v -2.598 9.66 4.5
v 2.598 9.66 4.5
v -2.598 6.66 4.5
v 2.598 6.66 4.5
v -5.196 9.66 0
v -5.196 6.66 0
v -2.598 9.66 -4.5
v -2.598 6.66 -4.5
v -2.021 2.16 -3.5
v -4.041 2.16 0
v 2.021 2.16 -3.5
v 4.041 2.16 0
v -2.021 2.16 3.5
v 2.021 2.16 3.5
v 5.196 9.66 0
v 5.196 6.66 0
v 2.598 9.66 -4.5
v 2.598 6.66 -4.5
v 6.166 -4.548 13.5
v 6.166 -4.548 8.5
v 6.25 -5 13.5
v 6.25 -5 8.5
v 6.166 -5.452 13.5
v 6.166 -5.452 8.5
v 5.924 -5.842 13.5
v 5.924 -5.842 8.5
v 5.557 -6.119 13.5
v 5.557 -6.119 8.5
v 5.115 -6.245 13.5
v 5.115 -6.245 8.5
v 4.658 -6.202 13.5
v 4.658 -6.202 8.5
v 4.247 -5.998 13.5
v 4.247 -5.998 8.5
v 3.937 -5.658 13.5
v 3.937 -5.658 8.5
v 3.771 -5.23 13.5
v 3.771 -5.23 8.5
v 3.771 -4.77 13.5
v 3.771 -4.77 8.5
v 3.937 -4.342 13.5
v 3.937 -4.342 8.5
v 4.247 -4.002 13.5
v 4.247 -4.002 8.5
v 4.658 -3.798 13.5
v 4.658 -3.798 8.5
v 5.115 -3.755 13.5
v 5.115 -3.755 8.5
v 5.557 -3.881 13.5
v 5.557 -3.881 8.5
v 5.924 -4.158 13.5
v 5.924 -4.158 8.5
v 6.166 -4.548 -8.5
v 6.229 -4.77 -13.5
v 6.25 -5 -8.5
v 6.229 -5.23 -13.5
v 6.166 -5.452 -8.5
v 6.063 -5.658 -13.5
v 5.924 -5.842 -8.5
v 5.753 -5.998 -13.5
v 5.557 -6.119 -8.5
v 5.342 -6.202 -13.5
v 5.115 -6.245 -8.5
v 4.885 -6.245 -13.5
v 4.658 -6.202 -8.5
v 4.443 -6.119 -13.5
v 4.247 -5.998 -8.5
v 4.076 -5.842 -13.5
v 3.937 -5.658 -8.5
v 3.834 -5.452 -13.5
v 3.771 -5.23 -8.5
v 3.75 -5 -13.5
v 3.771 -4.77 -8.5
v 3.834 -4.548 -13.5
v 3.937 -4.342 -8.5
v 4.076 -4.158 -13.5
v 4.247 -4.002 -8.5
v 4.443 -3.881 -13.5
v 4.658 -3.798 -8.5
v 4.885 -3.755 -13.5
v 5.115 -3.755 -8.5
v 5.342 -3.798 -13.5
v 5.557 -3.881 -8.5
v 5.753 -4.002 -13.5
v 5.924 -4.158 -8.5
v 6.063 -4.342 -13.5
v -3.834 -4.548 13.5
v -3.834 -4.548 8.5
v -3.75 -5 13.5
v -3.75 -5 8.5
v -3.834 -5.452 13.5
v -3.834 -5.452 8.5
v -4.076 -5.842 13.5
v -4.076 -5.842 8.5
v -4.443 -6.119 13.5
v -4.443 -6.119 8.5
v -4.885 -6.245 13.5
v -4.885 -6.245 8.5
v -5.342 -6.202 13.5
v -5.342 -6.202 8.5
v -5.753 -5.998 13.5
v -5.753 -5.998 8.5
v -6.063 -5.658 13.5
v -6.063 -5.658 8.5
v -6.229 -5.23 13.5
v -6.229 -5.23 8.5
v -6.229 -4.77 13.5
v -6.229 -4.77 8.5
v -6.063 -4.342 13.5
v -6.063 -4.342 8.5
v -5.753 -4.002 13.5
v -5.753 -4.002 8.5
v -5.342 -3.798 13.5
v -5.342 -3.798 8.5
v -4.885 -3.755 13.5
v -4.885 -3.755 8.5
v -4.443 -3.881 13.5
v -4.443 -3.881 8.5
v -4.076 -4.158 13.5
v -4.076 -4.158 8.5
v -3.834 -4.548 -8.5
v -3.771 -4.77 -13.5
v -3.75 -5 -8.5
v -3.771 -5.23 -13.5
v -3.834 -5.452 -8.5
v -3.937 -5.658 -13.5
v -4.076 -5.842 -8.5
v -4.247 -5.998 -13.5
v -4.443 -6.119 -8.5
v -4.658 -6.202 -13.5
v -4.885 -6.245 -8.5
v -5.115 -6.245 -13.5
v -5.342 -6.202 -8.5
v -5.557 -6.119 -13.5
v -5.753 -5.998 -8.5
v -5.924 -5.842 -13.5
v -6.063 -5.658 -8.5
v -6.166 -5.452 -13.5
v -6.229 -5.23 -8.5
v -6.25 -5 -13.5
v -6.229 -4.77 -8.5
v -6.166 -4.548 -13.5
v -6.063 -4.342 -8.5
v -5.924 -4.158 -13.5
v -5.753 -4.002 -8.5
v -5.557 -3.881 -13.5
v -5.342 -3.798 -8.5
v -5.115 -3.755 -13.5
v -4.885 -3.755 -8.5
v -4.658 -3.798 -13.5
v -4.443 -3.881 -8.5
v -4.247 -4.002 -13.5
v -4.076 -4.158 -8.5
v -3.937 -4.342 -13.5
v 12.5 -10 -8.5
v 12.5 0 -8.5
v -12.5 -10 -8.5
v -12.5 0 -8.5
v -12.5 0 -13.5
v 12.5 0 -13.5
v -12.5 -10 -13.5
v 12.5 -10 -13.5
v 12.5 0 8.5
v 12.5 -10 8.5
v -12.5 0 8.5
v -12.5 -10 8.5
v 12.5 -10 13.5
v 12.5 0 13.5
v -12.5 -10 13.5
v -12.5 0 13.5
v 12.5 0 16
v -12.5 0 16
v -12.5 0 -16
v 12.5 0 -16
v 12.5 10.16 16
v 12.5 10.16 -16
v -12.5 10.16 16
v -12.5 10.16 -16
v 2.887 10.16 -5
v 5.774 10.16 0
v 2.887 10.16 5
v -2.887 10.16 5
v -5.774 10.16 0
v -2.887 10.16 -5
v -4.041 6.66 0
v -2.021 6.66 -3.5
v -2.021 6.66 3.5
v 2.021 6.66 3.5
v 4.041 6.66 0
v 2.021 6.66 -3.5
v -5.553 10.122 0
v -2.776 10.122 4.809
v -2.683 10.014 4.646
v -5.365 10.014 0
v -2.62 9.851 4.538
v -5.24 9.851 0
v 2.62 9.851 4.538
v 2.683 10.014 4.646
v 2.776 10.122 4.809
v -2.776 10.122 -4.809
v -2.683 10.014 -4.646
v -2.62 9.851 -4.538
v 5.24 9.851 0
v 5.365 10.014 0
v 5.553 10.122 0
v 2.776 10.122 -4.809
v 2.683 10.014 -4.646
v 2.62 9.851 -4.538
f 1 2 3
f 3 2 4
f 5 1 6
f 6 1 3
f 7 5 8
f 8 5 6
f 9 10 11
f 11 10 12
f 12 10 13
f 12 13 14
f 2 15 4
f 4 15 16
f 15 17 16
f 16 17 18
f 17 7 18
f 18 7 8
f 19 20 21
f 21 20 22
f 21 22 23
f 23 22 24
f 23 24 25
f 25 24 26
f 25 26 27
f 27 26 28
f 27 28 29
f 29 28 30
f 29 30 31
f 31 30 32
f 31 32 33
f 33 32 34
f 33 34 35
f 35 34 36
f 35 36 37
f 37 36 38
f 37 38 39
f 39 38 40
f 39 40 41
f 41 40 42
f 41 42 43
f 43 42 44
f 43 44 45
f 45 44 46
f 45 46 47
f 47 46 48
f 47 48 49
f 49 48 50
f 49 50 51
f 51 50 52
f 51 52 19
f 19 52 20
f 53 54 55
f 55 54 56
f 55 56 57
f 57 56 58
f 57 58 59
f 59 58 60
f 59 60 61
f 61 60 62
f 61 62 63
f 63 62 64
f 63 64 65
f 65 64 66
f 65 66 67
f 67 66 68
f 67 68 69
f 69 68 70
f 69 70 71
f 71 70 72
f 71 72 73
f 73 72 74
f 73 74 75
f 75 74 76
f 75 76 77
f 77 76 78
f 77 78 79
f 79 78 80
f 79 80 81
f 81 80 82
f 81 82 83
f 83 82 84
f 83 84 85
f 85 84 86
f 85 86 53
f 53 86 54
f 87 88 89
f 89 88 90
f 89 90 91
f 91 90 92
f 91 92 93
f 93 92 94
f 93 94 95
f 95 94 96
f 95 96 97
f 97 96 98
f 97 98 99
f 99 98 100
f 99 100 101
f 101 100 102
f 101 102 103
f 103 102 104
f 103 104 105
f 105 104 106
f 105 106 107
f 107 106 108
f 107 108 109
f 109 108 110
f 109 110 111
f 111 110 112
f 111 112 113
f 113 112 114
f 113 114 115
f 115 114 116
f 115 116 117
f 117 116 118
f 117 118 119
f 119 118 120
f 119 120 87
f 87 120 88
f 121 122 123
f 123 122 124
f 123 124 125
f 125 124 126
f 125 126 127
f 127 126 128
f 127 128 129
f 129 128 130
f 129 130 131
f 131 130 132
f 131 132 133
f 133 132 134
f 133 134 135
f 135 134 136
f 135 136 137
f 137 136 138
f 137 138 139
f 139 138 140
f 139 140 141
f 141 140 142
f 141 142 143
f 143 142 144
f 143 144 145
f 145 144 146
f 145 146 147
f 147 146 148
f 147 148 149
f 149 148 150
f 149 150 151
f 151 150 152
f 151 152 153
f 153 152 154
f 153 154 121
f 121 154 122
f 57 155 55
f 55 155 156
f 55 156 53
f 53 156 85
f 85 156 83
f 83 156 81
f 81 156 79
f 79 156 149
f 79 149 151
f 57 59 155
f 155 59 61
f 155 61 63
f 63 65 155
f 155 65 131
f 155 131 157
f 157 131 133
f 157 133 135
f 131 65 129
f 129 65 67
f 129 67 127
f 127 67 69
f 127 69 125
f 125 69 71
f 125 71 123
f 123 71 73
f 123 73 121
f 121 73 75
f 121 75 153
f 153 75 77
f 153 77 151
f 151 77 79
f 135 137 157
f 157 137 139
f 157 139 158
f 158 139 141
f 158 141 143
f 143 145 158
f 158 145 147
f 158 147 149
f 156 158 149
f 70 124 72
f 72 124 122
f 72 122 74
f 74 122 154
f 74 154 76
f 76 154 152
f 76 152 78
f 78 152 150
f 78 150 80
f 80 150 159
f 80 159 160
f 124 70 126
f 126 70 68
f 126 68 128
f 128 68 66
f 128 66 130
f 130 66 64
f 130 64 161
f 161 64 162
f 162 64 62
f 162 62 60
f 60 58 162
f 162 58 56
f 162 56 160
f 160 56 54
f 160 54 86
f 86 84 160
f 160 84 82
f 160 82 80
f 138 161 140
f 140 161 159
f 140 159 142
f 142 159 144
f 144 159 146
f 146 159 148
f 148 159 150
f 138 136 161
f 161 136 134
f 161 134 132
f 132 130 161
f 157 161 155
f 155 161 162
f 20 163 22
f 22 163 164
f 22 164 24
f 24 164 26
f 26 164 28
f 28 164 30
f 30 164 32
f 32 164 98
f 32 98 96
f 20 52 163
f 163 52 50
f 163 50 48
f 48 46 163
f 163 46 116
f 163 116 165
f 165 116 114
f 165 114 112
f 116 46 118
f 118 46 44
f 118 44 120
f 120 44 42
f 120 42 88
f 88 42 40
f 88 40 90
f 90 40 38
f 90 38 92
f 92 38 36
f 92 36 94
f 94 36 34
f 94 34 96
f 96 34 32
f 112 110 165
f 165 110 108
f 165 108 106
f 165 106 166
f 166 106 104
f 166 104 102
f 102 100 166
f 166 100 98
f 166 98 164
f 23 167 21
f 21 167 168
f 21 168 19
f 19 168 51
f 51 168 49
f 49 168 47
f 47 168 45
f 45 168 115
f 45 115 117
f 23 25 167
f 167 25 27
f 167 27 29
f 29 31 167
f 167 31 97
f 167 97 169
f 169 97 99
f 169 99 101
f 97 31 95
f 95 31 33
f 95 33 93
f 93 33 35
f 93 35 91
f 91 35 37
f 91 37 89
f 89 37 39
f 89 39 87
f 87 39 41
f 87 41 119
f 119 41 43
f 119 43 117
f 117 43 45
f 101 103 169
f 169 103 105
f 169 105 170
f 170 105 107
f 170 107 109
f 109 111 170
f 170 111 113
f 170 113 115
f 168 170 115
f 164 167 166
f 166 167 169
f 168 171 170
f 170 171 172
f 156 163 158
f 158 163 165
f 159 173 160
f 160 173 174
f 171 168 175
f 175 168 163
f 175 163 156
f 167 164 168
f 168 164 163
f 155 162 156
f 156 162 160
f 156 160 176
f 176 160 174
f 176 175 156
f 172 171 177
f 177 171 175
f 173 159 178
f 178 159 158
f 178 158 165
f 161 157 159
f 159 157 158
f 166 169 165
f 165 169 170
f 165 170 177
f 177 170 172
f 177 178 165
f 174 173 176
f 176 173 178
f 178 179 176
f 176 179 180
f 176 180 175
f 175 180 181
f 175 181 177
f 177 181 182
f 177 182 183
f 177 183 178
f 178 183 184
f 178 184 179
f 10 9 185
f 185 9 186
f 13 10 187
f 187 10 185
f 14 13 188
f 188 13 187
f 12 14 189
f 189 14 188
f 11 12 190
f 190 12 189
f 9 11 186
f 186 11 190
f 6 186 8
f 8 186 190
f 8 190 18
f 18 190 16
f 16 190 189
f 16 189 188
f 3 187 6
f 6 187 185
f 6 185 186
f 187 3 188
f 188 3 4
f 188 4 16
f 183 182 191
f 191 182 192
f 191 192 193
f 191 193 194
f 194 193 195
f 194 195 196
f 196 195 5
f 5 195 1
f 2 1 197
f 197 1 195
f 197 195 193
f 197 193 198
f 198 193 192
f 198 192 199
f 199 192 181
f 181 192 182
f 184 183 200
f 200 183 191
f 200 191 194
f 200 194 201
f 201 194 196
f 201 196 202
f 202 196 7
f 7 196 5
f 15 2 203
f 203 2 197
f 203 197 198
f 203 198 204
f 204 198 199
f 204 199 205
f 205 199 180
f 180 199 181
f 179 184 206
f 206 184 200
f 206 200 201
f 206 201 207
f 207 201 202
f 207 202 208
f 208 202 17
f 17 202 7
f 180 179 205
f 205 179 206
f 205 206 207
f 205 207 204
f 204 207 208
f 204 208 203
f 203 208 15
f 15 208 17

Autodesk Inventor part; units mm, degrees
ref_plane "YZ Plane" through (0, 0, 0) normal (1, 0, 0) x (0, 1, 0)
ref_plane "XZ Plane" through (0, 0, 0) normal (0, 1, 0) x (-1, 0, 0)
ref_plane "XY Plane" through (0, 0, 0) normal (0, 0, 1) x (1, 0, 0)
sketch "스케치1" plane through (0, 0, 0) normal (0, 1, 0) x (-1, 0, 0)
  line L0 (-12.5, 16) -> (12.5, 16)
  line L1 (12.5, 16) -> (12.5, -16)
  line L2 (12.5, -16) -> (-12.5, -16)
  line L3 (-12.5, -16) -> (-12.5, 16)
  line L4 (-12.5, 16) -> (12.5, -16) construction
  line L5 (12.5, 16) -> (-12.5, -16) construction
  point P0 (0, 0)
  dimension "d0" = 25
  dimension "d1" = 32
extrude "돌출1" add sketch "스케치1" along normal blind 10.16
sketch "스케치4" plane through (0, 0, 0) normal (0, -1, 0) x (1, 0, 0)
  line L0 (-12.5, -16) -> (-12.5, 16) projected
  line L1 (12.5, 16) -> (12.5, -16) projected
  line L2 (-12.5, 13.5) -> (12.5, 13.5)
  line L3 (12.5, 13.5) -> (12.5, 8.5)
  line L4 (12.5, 8.5) -> (-12.5, 8.5)
  line L5 (-12.5, 8.5) -> (-12.5, 13.5)
  line L6 (-12.5, 0) -> (12.5, 0)
  line L7 (-12.5, 16) -> (-12.5, -16)
  line L8 (12.5, -10.8) -> (12.5, 10.8)
  line L9 (-12.5, -13.5) -> (12.5, -13.5)
  line L10 (12.5, -13.5) -> (12.5, -8.5)
  line L11 (12.5, -8.5) -> (-12.5, -8.5)
  line L12 (-12.5, -8.5) -> (-12.5, -13.5)
  point P0 (0, 0)
  point P1 (12.5, -8.5)
  point P2 (-12.5, -13.5)
  point P3 (12.5, -13.5)
  point P4 (12.5, 13.5)
  dimension "d13" = 8.5
  dimension "d14" = 5
extrude "돌출4" add sketch "스케치4" along normal blind 10 contours L0 L11 L1 L9 | L0 L2 L1 L4
sketch "스케치5" plane through (12.5, 0, -13.5) normal (0, 0, -1) x (-1, 0, 0)
  circle A0 centre (17.5, -5) radius 1.25
  line L0 (25, -10) -> (0, -10) projected
  line L1 (25, 0) -> (25, -10) projected
  line L2 (12.5, -10) -> (12.5, 0)
  circle A1 centre (7.5, -5) radius 1.25
  dimension "d17" = 2.5
  dimension "d18" = 5
  dimension "d22" = 5
extrude "돌출5" cut sketch "스케치5" against normal up to surface (27 mm away)
sketch "스케치6" plane through (0, 10.16, 0) normal (0, 1, 0) x (1, 0, 0)
  circle A0 centre (0, 0) radius 4.5
  line L0 (2.5981, -4.5) -> (-2.5981, -4.5)
  line L1 (-2.5981, -4.5) -> (-5.1962, 0)
  line L2 (-5.1962, 0) -> (-2.5981, 4.5)
  line L3 (-2.5981, 4.5) -> (2.5981, 4.5)
  line L4 (2.5981, 4.5) -> (5.1962, 0)
  line L5 (5.1962, 0) -> (2.5981, -4.5)
  dimension "d25" = 9
extrude "돌출6" cut sketch "스케치6" against normal blind 8
sketch "스케치7" plane through (0, 2.16, 0) normal (0, 1, 0) x (1, 0, 0)
  line L0 (2.5981, 4.5) -> (5.1962, 0) projected
  line L1 (-2.5981, 4.5) -> (2.5981, 4.5) projected
  line L2 (-5.1962, 0) -> (-2.5981, 4.5) projected
  line L3 (-2.5981, -4.5) -> (-5.1962, 0) projected
  line L4 (2.5981, -4.5) -> (-2.5981, -4.5) projected
  line L5 (5.1962, 0) -> (2.5981, -4.5) projected
  line L6 (-2.0207, 3.5) -> (2.0207, 3.5)
  line L7 (2.0207, 3.5) -> (4.0415, 0)
  line L8 (4.0415, 0) -> (2.0207, -3.5)
  line L9 (2.0207, -3.5) -> (-2.0207, -3.5)
  line L10 (-2.0207, -3.5) -> (-4.0415, 0)
  line L11 (-4.0415, 0) -> (-2.0207, 3.5)
  point P0 (0, 0)
  point P1 (0, 0)
  dimension "d29" = 1
extrude "돌출7" add sketch "스케치7" along normal blind 4.5
fillet "모깎기1" radius 0.5 6 edges at (-3.8971, 10.16, 2.25) (0, 10.16, 4.5) (-3.8971, 10.16, -2.25) (0, 10.16, -4.5) (3.8971, 10.16, -2.25) (3.8971, 10.16, 2.25)
properties part number "Tensile_test_bottom_adapter2"
